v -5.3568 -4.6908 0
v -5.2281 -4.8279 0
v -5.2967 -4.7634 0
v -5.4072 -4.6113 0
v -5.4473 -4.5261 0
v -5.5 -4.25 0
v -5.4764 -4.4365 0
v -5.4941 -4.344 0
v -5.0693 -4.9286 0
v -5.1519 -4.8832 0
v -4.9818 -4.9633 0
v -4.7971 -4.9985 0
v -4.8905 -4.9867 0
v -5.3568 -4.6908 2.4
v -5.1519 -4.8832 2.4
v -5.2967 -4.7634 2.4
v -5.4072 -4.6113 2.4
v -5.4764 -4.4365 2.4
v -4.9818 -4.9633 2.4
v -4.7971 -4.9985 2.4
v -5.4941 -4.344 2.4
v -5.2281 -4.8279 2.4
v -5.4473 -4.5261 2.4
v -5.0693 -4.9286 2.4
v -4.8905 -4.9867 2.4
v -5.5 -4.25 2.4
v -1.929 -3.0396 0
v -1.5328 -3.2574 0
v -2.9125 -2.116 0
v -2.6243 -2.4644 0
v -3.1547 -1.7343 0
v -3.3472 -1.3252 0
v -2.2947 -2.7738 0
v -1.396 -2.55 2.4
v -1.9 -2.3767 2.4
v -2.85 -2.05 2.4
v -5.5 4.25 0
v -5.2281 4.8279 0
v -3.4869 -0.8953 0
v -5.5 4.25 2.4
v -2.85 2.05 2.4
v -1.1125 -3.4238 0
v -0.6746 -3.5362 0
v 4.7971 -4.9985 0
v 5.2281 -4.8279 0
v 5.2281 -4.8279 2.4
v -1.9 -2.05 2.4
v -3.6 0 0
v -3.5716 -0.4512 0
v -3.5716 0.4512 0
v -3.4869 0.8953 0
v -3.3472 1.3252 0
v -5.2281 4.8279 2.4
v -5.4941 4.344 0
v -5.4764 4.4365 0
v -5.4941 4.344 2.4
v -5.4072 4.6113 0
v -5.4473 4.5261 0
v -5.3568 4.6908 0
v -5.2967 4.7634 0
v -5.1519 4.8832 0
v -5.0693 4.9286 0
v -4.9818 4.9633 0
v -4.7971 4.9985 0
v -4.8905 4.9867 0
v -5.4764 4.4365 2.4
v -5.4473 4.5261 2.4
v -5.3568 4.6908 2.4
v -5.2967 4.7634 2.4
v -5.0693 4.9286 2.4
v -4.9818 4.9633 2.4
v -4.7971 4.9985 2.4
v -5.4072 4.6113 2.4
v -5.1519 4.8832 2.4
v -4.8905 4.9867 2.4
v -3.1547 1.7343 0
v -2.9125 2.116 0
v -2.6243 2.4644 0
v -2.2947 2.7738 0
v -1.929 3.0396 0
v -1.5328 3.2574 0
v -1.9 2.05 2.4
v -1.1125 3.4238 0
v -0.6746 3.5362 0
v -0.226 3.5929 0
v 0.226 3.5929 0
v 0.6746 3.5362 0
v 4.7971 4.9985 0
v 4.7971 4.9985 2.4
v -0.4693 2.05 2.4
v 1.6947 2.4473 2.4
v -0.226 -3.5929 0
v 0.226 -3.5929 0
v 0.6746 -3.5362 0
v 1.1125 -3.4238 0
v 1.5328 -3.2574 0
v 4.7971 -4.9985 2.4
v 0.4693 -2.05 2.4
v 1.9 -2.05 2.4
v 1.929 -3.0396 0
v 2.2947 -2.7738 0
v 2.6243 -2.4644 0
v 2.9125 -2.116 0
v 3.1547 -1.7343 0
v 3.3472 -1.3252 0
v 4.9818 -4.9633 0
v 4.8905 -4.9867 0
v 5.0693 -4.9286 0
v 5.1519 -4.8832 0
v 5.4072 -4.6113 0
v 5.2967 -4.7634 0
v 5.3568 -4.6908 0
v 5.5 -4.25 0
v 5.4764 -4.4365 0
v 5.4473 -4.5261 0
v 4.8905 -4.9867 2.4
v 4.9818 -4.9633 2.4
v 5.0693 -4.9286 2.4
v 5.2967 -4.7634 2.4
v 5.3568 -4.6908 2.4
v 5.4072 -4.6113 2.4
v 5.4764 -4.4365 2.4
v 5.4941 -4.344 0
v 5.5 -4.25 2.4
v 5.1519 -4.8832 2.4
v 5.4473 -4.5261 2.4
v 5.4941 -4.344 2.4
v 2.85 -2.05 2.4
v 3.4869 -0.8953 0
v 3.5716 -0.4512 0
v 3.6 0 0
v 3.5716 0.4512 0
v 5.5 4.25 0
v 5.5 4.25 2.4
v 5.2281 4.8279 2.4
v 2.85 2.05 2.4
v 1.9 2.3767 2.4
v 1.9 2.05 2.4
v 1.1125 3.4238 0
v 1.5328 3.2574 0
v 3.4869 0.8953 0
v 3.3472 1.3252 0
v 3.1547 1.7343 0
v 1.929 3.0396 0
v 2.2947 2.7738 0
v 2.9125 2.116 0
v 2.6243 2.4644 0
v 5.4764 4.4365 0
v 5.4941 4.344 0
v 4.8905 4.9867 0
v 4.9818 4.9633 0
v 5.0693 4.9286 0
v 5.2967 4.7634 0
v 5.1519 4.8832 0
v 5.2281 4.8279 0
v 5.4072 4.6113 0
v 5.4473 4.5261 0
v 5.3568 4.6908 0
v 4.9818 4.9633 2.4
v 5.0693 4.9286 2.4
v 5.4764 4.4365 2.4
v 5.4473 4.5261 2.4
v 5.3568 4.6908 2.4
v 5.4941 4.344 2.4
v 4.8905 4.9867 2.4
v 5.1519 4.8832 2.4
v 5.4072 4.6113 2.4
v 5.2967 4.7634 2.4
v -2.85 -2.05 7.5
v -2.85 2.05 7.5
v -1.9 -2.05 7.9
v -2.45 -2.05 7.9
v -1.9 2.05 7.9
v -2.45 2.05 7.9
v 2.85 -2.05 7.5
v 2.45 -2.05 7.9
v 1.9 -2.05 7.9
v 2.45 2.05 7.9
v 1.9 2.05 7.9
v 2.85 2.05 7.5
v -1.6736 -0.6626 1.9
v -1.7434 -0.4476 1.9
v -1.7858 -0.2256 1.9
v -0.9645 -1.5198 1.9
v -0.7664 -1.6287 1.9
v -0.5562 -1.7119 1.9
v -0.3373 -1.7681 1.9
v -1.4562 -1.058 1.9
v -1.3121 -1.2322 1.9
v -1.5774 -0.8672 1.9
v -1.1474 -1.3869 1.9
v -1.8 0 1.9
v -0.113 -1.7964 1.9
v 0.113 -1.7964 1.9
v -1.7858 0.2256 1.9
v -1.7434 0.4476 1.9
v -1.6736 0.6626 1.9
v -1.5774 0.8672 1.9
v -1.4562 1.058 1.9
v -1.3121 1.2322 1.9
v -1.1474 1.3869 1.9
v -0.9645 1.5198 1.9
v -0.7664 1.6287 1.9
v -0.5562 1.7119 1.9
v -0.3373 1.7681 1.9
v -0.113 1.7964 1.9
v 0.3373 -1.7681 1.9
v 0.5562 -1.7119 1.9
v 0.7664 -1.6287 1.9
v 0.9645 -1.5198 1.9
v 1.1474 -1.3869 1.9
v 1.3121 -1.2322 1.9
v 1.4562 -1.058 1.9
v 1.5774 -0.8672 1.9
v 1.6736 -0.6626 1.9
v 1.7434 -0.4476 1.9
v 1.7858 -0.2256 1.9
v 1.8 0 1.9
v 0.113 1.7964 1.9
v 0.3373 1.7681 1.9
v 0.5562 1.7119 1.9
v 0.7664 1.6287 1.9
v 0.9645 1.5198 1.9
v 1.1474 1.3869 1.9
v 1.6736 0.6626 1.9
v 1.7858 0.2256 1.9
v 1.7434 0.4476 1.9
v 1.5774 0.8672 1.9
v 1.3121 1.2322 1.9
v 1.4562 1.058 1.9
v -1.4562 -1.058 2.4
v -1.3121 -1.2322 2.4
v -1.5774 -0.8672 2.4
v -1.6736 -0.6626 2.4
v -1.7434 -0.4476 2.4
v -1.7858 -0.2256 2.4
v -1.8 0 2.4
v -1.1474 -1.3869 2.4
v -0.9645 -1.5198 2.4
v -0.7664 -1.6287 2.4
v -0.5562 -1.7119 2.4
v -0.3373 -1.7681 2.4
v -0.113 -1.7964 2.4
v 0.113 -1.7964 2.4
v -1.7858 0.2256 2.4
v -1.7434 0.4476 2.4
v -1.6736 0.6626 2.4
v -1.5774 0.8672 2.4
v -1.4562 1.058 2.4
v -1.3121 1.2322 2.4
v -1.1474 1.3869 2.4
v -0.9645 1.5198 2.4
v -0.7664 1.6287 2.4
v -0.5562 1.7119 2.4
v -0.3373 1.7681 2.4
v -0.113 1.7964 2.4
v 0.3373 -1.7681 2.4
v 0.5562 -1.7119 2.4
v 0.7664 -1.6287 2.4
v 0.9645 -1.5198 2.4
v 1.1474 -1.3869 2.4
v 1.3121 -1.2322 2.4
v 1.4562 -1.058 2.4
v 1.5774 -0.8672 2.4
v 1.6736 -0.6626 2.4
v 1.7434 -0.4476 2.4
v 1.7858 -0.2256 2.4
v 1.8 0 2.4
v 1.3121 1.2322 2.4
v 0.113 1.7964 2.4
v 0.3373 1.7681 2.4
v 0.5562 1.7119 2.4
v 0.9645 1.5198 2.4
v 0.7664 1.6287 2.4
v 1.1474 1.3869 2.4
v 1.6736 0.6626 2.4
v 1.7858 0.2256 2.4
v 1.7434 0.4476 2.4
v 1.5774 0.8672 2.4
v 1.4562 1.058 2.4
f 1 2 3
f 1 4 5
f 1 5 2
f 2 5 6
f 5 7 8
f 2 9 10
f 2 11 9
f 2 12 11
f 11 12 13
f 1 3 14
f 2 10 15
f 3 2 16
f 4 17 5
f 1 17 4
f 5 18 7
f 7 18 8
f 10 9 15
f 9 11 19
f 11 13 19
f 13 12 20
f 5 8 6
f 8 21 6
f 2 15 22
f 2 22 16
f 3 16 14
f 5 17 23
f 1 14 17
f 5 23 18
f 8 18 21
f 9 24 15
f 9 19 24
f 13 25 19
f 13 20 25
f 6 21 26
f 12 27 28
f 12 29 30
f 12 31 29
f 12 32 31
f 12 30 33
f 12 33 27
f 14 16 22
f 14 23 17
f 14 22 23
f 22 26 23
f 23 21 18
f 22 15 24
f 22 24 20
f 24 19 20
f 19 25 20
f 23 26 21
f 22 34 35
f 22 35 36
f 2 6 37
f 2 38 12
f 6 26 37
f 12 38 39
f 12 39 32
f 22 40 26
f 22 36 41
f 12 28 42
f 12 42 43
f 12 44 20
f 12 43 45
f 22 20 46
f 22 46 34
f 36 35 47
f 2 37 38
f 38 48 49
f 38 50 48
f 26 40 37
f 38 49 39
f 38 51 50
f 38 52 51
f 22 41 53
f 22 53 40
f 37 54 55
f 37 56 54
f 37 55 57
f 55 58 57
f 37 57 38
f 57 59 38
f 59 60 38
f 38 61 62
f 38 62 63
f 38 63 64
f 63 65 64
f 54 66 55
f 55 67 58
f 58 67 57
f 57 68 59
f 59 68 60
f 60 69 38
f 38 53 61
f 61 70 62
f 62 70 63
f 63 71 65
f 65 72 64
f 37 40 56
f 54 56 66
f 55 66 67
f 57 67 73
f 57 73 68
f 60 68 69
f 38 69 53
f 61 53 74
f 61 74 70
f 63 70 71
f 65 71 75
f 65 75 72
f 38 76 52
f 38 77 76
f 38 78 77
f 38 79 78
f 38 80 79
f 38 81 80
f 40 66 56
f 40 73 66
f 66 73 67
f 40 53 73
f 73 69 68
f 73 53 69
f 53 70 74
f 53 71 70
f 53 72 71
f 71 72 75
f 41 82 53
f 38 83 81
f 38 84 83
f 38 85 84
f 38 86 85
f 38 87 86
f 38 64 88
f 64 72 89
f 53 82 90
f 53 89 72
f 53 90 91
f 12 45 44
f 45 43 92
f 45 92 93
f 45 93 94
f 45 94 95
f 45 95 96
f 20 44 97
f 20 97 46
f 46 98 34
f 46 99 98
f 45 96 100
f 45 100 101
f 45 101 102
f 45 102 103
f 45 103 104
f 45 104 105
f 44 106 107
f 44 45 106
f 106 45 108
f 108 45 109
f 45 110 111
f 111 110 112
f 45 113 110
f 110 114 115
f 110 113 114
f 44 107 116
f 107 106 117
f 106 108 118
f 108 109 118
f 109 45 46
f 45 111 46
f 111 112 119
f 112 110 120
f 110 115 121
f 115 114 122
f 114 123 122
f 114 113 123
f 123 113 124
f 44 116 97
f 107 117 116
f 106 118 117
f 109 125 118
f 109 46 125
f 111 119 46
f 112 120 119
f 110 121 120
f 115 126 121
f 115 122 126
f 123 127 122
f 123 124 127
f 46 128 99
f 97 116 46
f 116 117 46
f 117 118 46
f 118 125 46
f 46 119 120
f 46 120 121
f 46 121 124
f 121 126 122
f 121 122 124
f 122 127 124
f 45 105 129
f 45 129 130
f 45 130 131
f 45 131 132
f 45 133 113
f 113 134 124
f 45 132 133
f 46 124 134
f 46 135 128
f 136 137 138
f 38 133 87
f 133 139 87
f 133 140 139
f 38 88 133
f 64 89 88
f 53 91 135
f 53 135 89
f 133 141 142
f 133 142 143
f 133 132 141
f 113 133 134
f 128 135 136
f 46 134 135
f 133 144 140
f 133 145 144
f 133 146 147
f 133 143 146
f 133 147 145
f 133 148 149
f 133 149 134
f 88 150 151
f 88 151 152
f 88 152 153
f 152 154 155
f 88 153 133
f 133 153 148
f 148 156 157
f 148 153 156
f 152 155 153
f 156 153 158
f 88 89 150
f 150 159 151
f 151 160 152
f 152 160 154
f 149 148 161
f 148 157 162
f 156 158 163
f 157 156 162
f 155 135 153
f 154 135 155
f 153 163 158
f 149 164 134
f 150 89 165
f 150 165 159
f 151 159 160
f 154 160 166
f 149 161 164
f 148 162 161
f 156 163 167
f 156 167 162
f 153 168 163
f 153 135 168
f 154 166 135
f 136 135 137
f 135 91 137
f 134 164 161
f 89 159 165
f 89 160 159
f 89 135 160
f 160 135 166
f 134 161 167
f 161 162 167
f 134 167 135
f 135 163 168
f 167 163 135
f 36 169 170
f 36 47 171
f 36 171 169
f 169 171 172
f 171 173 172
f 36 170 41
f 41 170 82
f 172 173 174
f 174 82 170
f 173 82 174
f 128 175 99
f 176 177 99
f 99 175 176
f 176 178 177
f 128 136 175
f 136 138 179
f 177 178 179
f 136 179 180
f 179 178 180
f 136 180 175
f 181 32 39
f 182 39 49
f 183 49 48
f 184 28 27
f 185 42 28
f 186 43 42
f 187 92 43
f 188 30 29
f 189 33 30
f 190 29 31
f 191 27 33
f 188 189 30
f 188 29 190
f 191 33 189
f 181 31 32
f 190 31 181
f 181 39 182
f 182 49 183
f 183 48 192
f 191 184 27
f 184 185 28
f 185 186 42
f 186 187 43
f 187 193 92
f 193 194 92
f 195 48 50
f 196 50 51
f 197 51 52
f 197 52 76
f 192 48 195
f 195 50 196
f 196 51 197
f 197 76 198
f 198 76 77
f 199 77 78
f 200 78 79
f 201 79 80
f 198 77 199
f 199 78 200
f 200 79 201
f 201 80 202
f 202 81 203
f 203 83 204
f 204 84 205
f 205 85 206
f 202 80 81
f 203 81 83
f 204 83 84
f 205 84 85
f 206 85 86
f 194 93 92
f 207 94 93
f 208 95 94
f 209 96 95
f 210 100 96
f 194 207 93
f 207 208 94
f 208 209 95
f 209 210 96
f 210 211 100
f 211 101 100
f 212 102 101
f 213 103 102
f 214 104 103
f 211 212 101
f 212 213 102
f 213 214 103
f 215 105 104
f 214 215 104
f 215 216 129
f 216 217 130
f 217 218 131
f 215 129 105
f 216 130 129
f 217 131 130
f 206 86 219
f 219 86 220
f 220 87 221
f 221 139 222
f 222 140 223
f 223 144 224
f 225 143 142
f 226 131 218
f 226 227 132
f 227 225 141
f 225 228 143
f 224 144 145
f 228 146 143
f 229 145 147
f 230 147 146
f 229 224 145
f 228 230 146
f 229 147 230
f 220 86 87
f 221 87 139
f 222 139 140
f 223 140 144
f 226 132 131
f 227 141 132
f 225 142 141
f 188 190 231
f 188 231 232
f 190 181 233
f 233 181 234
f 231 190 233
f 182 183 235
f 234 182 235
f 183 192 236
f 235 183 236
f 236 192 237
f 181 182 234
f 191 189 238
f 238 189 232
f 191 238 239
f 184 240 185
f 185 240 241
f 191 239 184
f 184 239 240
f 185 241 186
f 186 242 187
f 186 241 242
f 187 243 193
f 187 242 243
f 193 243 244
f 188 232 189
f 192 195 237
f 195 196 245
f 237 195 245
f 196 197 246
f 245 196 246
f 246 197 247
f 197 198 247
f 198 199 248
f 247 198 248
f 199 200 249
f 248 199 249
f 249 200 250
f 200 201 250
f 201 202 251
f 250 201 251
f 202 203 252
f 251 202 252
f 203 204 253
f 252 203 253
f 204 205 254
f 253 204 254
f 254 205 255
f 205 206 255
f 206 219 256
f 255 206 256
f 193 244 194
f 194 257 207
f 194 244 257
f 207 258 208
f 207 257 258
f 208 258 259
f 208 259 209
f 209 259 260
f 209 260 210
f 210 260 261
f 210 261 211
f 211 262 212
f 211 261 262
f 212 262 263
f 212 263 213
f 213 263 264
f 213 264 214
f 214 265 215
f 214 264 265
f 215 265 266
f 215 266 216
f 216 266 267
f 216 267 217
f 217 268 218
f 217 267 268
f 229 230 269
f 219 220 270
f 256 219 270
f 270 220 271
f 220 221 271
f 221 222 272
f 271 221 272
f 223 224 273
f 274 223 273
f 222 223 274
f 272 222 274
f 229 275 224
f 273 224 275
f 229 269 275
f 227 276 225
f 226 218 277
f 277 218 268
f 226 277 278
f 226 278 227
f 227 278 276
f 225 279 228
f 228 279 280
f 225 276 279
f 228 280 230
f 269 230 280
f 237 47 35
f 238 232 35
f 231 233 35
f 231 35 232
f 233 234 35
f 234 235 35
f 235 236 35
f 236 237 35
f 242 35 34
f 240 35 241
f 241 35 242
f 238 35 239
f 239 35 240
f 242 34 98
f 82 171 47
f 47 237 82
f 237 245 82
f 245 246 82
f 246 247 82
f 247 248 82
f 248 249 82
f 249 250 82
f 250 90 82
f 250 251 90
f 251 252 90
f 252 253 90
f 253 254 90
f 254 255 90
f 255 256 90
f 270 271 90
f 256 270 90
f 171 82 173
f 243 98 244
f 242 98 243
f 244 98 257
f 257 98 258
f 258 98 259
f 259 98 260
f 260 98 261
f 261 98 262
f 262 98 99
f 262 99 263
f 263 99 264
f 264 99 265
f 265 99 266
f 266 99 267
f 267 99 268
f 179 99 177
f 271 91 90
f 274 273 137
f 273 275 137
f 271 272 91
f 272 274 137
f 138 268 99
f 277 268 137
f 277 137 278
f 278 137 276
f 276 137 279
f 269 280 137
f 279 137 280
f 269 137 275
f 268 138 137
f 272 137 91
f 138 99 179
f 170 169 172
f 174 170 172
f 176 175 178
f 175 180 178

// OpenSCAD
$fn = 50;

difference() {
	union() {
		translate(v = [0, 0, 0]) {
			rotate(a = [0, 0, 0]) {
				difference() {
					union() {
						hull() {
							translate(v = [-4.75, 4.25, 0]) {
								cylinder(h = 2.4, r = 0.75);
							}
							translate(v = [4.75, 4.25, 0]) {
								cylinder(h = 2.4, r = 0.75);
							}
							translate(v = [-4.75, -4.25, 0]) {
								cylinder(h = 2.4, r = 0.75);
							}
							translate(v = [4.75, -4.25, 0]) {
								cylinder(h = 2.4, r = 0.75);
							}
						}
						translate(v = [-2.85, -2.05, 2.35]) {
							cube(size = [5.7, 4.1, 5.55]);
						}
					}
					union() {
						translate(v = [0, 0, 0]) {
							rotate(a = [0, 180, 0]) {
								difference() {
									union() {
										translate(v = [0, 0, -20.0]) {
											cylinder(h = 20.0, r = 1.5);
										}
										translate(v = [0, 0, -1.9]) {
											cylinder(h = 1.9, r1 = 1.8, r2 = 3.6);
										}
										cylinder(h = 250, r = 3.6);
										translate(v = [0, 0, -20.0]) {
											cylinder(h = 20.0, r = 1.8);
										}
										translate(v = [0, 0, -20.0]) {
											cylinder(h = 20.0, r = 1.5);
										}
									}
									union();
								}
							}
						}
						translate(v = [-1.9, -2.55, 2.4]) {
							cube(size = [3.8, 5.1, 5.6]);
						}
						translate(v = [0, 2.15, 0]) {
							rotate(a = [90, 0, 0]) {
								linear_extrude(height = 4.3) {
									polygon(points = [[-3.0500000000000003, 7.300000000000001], [-2.25, 8.1], [-3.0500000000000003, 8.1]]);
								}
							}
						}
						translate(v = [0, 2.15, 0]) {
							rotate(a = [90, 0, 0]) {
								linear_extrude(height = 4.3) {
									polygon(points = [[3.0500000000000003, 7.300000000000001], [2.25, 8.1], [3.0500000000000003, 8.1]]);
								}
							}
						}
					}
				}
			}
		}
	}
	union();
}
